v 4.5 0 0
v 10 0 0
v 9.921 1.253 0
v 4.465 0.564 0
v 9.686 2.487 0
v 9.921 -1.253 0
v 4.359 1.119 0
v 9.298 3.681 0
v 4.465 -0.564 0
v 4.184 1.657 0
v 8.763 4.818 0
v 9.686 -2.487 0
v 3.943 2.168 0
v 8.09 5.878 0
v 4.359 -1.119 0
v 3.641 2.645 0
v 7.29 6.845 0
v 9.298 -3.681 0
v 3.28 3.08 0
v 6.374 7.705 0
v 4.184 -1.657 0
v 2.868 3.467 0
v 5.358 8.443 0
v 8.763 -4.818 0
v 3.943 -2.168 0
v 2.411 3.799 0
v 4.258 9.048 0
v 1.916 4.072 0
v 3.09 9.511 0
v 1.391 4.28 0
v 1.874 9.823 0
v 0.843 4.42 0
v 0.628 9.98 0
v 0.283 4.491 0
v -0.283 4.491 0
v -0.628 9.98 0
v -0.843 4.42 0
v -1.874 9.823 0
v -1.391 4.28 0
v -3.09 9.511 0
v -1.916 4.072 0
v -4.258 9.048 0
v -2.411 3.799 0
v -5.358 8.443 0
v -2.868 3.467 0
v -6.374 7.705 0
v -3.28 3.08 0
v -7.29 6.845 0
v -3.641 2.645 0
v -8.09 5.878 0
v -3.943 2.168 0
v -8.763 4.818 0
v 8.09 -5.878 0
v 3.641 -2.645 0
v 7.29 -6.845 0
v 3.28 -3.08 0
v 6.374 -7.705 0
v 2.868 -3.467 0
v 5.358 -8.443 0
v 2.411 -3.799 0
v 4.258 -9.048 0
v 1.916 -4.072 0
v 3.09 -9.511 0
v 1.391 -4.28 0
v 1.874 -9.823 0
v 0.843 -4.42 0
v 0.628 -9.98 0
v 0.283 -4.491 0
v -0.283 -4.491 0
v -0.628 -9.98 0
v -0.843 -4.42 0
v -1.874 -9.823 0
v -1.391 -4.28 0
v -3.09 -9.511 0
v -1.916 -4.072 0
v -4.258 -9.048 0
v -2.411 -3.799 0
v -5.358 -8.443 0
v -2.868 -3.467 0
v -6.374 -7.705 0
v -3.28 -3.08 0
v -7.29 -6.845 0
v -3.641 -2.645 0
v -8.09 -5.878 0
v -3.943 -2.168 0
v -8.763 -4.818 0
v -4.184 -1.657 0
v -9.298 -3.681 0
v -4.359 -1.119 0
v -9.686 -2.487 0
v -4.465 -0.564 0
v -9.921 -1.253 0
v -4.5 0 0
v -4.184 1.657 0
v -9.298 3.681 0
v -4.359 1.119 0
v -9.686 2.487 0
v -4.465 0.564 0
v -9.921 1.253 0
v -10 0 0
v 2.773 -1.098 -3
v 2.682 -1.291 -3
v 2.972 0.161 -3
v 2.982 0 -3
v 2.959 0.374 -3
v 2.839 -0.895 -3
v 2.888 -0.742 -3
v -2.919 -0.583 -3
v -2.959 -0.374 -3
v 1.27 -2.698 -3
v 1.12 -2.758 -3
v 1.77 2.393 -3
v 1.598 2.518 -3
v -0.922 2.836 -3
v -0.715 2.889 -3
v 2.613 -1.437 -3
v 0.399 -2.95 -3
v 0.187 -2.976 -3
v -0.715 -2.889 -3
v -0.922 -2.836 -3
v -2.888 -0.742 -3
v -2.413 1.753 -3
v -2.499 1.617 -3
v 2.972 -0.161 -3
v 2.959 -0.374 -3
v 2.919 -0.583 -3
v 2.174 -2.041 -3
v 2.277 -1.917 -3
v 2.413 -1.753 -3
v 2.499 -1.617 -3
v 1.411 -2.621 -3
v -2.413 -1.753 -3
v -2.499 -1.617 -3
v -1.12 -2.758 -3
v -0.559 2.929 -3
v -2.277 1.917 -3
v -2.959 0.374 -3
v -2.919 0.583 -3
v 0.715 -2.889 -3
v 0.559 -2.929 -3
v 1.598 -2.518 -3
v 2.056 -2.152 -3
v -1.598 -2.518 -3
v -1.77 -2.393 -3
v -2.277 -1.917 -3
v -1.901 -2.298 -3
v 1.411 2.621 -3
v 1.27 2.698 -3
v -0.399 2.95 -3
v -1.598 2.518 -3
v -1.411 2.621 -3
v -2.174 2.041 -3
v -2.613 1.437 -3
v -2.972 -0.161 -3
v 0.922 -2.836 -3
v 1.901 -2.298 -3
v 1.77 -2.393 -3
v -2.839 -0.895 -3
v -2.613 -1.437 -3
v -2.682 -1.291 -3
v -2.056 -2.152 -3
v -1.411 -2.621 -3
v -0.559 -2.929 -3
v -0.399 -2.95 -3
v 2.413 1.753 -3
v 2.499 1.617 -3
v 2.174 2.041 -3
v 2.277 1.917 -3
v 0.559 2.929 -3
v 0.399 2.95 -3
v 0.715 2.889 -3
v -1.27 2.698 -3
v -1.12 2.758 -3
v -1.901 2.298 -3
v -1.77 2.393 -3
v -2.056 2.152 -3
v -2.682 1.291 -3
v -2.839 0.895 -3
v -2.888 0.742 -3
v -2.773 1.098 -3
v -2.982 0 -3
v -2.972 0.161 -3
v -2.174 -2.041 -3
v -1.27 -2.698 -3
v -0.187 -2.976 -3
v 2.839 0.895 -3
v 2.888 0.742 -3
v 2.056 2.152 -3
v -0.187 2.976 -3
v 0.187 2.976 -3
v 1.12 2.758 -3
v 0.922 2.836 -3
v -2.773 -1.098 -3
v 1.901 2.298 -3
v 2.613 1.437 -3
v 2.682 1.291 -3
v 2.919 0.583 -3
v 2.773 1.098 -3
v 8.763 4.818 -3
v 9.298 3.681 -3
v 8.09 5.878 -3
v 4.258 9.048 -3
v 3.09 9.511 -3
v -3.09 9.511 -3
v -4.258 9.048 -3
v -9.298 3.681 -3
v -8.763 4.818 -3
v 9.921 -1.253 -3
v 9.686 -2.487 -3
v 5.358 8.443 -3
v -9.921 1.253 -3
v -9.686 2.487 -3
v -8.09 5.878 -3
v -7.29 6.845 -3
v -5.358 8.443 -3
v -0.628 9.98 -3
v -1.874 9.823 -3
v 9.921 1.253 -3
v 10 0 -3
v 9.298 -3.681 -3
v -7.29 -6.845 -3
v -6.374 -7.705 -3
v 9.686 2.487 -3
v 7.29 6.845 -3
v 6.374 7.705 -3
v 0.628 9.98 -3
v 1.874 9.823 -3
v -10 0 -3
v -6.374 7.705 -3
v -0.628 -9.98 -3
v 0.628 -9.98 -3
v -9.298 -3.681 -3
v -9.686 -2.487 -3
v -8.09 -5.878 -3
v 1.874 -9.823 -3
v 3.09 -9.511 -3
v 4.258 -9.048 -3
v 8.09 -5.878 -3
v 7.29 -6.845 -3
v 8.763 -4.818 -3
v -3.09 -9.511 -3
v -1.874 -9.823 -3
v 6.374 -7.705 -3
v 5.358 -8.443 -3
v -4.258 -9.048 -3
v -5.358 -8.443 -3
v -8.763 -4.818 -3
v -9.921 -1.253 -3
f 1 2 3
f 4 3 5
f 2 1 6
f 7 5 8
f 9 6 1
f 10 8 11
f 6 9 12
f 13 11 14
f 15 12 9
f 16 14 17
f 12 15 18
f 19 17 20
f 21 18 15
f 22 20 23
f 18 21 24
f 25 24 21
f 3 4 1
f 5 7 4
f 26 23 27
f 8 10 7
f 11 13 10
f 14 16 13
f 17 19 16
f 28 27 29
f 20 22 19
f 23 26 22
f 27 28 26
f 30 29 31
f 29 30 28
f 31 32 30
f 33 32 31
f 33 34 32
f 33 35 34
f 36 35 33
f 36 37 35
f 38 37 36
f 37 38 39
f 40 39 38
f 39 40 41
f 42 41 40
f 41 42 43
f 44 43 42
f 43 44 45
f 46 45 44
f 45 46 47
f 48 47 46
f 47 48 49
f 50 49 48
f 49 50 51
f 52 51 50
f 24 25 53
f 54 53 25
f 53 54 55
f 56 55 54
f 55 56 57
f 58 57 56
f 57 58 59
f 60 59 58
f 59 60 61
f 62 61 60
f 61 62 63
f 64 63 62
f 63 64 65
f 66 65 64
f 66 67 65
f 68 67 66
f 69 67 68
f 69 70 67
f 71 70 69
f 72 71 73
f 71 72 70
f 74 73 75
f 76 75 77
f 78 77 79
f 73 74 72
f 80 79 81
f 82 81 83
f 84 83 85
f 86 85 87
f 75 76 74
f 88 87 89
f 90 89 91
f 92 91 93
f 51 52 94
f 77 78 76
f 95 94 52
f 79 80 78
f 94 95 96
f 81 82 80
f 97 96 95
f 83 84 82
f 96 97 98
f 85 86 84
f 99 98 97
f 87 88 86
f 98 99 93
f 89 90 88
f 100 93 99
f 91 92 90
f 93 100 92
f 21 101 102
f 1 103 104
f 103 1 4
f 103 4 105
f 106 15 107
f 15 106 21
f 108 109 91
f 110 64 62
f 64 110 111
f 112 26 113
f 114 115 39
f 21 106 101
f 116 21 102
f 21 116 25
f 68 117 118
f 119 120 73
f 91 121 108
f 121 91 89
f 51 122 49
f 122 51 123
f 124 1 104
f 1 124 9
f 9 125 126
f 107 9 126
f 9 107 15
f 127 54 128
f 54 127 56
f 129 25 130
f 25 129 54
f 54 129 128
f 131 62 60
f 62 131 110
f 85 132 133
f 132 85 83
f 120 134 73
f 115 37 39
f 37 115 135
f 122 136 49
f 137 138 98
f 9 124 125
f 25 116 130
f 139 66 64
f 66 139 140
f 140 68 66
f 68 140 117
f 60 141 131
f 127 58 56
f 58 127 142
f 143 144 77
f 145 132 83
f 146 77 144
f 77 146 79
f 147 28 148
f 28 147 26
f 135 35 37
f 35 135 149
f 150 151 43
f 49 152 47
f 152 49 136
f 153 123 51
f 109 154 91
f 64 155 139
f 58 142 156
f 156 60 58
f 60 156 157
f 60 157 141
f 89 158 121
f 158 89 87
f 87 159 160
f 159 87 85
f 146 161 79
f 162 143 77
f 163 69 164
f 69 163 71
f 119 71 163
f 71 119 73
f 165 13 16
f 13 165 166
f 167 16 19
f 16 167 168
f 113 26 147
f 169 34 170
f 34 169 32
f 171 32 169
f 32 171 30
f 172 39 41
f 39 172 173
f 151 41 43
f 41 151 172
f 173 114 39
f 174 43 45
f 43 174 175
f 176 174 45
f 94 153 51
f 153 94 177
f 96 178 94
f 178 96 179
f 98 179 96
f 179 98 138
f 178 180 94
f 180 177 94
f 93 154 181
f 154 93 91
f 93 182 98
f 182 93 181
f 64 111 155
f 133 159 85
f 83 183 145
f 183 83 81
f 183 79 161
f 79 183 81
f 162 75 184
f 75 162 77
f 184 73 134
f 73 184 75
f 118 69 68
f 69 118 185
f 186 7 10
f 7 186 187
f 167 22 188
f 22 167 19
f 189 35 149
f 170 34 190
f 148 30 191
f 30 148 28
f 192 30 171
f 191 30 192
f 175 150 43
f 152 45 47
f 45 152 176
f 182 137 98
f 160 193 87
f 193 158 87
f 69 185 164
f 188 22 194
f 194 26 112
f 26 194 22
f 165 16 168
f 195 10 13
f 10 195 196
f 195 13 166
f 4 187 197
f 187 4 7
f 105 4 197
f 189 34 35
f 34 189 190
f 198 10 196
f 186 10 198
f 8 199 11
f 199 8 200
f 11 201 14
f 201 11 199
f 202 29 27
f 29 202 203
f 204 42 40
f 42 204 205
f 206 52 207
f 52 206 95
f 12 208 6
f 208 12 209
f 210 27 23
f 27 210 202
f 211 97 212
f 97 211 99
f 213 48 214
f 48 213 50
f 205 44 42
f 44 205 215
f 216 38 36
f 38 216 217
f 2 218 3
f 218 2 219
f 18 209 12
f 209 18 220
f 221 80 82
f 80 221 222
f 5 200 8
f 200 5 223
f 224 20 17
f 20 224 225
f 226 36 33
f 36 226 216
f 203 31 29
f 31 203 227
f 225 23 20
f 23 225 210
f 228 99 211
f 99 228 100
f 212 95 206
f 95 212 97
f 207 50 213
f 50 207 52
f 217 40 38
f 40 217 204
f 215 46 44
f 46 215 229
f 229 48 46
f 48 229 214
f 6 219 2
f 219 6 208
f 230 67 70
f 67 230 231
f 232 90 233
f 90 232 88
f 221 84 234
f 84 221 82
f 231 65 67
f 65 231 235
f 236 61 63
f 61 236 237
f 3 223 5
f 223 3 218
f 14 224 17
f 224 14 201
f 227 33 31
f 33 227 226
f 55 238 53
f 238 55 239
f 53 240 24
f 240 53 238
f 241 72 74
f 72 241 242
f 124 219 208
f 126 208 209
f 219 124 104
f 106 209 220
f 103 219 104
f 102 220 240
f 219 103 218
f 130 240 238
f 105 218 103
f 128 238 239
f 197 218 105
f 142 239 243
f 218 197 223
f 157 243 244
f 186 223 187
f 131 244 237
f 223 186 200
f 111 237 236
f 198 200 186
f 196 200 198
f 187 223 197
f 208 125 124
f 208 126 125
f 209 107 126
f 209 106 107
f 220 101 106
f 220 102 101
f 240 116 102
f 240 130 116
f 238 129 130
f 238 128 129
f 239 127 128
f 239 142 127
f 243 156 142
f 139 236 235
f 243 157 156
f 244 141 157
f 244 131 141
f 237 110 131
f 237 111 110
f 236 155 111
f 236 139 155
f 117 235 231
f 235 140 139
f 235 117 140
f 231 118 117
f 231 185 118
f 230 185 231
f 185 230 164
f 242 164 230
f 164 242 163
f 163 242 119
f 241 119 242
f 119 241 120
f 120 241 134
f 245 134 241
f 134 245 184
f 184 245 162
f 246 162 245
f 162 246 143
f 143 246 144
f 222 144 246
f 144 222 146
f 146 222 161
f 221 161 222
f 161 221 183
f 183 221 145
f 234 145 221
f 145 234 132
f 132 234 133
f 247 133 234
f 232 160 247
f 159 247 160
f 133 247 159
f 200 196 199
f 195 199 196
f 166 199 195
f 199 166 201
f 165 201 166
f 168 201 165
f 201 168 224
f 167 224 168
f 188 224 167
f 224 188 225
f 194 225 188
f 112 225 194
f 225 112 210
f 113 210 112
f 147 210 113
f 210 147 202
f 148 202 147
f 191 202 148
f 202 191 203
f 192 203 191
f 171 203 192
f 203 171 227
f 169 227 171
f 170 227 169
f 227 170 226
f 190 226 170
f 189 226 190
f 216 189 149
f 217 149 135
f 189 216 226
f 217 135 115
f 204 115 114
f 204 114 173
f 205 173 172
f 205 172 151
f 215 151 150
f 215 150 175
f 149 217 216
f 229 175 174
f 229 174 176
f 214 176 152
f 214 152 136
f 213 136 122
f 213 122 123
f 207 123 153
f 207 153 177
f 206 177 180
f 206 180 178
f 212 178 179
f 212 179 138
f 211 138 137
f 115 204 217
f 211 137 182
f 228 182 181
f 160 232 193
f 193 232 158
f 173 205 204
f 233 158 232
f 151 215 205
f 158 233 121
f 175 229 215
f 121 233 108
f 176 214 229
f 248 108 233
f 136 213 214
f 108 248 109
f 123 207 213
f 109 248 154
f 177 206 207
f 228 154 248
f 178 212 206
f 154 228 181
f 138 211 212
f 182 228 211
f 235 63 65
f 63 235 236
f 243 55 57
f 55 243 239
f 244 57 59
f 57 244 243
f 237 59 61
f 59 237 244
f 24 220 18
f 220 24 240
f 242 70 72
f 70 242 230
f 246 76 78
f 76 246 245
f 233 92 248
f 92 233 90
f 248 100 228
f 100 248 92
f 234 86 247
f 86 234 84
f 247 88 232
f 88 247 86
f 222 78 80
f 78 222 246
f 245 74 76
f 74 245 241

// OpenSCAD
$fn = 50;


difference() {
	union() {
		translate(v = [0, 0, -3.0000000000]) {
			cylinder(h = 3, r = 10.0000000000);
		}
		cylinder(h = 0, r = 19.0000000000);
	}
	union() {
		translate(v = [0, 0, 0]) {
			rotate(a = [0, 0, 0]) {
				difference() {
					union() {
						#translate(v = [0, 0, -3.0000000000]) {
							cylinder(h = 3, r = 2.2500000000);
						}
						#translate(v = [0, 0, -4.2000000000]) {
							cylinder(h = 4.2000000000, r1 = 2.3750000000, r2 = 4.5000000000);
						}
						#translate(v = [0, 0, -3.0000000000]) {
							cylinder(h = 3, r = 2.3750000000);
						}
						#translate(v = [0, 0, -3.0000000000]) {
							cylinder(h = 3, r = 2.2500000000);
						}
					}
					union();
				}
			}
		}
	}
}
